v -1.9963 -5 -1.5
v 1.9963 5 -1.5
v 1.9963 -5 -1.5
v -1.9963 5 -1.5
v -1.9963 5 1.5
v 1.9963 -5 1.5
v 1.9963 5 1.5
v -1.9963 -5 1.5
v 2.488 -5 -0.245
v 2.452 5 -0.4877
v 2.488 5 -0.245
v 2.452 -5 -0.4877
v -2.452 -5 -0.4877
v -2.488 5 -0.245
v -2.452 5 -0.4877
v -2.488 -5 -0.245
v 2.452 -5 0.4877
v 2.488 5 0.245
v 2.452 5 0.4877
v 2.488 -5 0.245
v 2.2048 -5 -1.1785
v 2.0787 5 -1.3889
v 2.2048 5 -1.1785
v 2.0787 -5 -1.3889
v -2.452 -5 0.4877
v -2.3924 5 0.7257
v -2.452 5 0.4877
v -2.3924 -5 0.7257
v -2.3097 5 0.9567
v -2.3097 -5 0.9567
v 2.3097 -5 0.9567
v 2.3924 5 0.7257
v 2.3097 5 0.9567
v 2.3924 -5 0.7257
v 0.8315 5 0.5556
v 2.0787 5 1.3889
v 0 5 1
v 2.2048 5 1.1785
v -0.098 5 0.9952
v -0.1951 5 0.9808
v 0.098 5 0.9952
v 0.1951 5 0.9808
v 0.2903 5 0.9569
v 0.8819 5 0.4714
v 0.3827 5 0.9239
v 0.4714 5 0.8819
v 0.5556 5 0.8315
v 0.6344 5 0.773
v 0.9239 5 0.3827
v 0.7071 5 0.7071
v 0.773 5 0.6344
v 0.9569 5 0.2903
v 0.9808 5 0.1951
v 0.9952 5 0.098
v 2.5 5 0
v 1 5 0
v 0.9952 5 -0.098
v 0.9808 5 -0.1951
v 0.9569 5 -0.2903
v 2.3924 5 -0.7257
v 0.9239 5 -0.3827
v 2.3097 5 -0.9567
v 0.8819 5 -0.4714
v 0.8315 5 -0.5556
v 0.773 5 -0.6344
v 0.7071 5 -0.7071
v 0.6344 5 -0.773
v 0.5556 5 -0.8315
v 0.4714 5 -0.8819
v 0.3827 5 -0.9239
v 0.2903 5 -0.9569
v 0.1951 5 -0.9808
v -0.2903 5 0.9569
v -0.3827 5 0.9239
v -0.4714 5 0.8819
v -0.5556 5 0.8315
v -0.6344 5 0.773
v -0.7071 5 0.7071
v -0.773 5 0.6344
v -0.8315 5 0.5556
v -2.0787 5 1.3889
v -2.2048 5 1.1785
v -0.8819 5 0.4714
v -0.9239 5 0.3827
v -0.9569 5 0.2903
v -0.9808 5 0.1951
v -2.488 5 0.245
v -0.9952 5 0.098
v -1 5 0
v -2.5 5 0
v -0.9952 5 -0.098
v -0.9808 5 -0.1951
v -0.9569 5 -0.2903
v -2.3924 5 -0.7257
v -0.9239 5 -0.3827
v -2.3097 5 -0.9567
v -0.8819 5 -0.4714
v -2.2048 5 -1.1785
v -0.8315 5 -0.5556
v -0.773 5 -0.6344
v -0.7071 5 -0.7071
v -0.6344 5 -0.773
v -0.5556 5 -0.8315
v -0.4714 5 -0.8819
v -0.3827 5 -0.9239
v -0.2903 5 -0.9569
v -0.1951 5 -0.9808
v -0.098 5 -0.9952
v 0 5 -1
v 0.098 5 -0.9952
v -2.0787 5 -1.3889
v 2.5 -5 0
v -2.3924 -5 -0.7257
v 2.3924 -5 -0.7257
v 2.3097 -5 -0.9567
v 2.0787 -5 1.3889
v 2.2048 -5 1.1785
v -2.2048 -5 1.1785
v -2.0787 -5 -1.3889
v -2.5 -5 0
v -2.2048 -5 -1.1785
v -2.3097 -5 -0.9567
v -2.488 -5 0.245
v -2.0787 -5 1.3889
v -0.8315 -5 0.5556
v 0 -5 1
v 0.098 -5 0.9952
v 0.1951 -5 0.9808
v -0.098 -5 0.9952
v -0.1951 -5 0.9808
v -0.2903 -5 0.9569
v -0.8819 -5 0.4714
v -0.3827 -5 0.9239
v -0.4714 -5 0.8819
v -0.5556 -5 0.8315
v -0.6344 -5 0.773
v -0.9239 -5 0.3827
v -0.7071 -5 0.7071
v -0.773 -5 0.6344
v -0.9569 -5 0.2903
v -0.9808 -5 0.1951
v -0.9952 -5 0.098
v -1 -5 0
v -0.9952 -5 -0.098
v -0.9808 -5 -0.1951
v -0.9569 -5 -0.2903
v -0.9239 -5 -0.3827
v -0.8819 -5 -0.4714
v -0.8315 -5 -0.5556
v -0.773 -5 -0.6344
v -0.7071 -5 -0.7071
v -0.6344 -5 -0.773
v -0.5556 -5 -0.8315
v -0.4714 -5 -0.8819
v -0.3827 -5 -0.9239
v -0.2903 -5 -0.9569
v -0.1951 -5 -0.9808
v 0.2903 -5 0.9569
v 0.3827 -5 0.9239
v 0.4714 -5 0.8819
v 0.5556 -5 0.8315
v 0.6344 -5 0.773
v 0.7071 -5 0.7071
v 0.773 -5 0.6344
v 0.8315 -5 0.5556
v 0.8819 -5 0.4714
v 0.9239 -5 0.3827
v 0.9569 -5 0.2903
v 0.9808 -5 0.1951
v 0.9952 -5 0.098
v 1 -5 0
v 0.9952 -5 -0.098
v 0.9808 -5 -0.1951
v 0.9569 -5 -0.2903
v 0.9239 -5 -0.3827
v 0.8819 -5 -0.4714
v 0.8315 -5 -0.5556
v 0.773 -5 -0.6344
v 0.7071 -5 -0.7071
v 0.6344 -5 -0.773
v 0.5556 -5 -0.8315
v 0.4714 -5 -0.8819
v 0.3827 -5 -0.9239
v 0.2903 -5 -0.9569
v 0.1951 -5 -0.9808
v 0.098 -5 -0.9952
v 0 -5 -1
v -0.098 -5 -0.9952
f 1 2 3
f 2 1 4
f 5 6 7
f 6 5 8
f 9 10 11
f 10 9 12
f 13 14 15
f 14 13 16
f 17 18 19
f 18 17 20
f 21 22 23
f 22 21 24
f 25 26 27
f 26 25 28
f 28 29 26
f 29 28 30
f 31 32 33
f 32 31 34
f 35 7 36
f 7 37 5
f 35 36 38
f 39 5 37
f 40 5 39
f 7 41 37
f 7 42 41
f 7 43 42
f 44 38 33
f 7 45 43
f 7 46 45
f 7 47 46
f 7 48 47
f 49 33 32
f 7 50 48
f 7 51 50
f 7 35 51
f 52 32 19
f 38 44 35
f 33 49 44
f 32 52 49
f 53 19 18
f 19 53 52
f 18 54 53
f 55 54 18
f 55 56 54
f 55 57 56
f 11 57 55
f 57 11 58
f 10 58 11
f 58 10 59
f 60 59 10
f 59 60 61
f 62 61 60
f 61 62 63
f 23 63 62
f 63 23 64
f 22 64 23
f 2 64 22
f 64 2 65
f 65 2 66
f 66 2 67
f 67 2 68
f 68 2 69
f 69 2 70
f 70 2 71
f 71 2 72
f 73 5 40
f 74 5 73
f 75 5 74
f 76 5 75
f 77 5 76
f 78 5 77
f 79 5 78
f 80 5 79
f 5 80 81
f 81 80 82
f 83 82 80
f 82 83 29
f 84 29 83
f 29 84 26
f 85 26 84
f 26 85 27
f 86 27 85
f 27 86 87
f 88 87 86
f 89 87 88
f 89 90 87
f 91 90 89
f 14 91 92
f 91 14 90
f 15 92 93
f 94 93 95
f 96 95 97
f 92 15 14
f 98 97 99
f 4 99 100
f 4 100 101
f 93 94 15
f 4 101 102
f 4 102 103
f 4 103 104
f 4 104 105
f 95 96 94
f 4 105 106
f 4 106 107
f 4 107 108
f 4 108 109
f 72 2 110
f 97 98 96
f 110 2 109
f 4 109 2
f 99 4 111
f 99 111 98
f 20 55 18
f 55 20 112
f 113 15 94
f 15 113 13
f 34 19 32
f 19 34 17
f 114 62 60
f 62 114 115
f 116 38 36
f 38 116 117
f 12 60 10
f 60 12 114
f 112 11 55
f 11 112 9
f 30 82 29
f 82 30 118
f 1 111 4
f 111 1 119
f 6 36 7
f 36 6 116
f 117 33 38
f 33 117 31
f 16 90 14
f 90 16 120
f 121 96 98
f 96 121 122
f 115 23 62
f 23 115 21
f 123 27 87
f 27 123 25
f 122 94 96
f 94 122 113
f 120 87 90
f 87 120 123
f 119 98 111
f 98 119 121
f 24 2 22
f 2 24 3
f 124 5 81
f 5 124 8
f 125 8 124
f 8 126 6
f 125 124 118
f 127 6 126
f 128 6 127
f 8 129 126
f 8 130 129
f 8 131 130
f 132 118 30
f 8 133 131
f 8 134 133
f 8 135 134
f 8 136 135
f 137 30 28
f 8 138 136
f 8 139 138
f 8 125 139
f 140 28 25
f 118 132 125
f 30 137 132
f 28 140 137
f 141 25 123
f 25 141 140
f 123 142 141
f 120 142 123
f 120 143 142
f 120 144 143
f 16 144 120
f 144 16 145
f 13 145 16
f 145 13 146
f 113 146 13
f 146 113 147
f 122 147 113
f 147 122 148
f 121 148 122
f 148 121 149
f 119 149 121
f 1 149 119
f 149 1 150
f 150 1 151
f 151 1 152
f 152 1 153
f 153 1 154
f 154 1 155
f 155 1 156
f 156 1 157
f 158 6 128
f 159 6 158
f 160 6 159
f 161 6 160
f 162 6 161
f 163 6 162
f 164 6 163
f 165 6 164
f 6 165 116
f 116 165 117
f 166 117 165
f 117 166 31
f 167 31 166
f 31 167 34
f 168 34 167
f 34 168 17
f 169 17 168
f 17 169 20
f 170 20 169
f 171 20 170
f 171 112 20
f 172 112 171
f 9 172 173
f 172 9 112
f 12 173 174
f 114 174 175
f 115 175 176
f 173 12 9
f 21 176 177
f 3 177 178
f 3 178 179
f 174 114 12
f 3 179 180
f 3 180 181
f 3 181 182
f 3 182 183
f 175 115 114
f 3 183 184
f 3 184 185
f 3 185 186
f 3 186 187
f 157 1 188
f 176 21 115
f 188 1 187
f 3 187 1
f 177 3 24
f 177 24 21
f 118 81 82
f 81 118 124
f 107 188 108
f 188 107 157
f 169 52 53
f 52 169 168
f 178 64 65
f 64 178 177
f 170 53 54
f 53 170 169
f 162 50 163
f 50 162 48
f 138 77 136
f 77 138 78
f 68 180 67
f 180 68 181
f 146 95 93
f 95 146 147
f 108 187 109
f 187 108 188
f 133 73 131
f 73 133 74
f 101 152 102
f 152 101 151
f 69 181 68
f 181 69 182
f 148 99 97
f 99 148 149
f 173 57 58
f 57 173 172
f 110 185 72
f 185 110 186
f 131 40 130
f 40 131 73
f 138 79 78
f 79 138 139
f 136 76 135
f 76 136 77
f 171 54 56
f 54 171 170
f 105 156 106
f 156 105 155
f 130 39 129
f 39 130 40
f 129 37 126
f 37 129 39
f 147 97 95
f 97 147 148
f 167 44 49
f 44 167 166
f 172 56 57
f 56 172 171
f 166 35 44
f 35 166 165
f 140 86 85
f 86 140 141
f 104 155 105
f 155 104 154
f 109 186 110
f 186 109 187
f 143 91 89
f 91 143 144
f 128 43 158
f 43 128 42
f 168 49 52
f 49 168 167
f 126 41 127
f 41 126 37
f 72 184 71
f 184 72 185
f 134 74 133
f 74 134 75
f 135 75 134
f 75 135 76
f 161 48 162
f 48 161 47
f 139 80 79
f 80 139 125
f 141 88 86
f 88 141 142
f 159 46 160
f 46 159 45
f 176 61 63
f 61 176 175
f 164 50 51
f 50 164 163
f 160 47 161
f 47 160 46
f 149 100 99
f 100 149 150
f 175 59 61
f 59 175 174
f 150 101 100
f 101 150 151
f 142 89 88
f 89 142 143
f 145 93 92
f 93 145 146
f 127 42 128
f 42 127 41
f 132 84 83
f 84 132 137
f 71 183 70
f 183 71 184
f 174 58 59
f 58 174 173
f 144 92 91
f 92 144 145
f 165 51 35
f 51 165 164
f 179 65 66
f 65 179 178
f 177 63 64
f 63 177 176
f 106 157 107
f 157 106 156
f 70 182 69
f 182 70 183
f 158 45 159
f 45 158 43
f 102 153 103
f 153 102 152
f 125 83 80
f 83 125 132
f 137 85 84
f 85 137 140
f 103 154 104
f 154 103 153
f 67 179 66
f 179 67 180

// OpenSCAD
$fn = $preview ? 32 : 64;

width = 5;
height = 10;
hole = 2;
cut_size = width/5;

rotate([90,0,0]) difference() {
	cylinder(height, width/2, width/2, true);
	cylinder(height + 1, hole/2, hole/2, true);
	for (i = [-1, 1]) {
		translate([0, (width/2 - cut_size/2) * i, 0]) cube([width, cut_size, height + 1], true);
	}
}
